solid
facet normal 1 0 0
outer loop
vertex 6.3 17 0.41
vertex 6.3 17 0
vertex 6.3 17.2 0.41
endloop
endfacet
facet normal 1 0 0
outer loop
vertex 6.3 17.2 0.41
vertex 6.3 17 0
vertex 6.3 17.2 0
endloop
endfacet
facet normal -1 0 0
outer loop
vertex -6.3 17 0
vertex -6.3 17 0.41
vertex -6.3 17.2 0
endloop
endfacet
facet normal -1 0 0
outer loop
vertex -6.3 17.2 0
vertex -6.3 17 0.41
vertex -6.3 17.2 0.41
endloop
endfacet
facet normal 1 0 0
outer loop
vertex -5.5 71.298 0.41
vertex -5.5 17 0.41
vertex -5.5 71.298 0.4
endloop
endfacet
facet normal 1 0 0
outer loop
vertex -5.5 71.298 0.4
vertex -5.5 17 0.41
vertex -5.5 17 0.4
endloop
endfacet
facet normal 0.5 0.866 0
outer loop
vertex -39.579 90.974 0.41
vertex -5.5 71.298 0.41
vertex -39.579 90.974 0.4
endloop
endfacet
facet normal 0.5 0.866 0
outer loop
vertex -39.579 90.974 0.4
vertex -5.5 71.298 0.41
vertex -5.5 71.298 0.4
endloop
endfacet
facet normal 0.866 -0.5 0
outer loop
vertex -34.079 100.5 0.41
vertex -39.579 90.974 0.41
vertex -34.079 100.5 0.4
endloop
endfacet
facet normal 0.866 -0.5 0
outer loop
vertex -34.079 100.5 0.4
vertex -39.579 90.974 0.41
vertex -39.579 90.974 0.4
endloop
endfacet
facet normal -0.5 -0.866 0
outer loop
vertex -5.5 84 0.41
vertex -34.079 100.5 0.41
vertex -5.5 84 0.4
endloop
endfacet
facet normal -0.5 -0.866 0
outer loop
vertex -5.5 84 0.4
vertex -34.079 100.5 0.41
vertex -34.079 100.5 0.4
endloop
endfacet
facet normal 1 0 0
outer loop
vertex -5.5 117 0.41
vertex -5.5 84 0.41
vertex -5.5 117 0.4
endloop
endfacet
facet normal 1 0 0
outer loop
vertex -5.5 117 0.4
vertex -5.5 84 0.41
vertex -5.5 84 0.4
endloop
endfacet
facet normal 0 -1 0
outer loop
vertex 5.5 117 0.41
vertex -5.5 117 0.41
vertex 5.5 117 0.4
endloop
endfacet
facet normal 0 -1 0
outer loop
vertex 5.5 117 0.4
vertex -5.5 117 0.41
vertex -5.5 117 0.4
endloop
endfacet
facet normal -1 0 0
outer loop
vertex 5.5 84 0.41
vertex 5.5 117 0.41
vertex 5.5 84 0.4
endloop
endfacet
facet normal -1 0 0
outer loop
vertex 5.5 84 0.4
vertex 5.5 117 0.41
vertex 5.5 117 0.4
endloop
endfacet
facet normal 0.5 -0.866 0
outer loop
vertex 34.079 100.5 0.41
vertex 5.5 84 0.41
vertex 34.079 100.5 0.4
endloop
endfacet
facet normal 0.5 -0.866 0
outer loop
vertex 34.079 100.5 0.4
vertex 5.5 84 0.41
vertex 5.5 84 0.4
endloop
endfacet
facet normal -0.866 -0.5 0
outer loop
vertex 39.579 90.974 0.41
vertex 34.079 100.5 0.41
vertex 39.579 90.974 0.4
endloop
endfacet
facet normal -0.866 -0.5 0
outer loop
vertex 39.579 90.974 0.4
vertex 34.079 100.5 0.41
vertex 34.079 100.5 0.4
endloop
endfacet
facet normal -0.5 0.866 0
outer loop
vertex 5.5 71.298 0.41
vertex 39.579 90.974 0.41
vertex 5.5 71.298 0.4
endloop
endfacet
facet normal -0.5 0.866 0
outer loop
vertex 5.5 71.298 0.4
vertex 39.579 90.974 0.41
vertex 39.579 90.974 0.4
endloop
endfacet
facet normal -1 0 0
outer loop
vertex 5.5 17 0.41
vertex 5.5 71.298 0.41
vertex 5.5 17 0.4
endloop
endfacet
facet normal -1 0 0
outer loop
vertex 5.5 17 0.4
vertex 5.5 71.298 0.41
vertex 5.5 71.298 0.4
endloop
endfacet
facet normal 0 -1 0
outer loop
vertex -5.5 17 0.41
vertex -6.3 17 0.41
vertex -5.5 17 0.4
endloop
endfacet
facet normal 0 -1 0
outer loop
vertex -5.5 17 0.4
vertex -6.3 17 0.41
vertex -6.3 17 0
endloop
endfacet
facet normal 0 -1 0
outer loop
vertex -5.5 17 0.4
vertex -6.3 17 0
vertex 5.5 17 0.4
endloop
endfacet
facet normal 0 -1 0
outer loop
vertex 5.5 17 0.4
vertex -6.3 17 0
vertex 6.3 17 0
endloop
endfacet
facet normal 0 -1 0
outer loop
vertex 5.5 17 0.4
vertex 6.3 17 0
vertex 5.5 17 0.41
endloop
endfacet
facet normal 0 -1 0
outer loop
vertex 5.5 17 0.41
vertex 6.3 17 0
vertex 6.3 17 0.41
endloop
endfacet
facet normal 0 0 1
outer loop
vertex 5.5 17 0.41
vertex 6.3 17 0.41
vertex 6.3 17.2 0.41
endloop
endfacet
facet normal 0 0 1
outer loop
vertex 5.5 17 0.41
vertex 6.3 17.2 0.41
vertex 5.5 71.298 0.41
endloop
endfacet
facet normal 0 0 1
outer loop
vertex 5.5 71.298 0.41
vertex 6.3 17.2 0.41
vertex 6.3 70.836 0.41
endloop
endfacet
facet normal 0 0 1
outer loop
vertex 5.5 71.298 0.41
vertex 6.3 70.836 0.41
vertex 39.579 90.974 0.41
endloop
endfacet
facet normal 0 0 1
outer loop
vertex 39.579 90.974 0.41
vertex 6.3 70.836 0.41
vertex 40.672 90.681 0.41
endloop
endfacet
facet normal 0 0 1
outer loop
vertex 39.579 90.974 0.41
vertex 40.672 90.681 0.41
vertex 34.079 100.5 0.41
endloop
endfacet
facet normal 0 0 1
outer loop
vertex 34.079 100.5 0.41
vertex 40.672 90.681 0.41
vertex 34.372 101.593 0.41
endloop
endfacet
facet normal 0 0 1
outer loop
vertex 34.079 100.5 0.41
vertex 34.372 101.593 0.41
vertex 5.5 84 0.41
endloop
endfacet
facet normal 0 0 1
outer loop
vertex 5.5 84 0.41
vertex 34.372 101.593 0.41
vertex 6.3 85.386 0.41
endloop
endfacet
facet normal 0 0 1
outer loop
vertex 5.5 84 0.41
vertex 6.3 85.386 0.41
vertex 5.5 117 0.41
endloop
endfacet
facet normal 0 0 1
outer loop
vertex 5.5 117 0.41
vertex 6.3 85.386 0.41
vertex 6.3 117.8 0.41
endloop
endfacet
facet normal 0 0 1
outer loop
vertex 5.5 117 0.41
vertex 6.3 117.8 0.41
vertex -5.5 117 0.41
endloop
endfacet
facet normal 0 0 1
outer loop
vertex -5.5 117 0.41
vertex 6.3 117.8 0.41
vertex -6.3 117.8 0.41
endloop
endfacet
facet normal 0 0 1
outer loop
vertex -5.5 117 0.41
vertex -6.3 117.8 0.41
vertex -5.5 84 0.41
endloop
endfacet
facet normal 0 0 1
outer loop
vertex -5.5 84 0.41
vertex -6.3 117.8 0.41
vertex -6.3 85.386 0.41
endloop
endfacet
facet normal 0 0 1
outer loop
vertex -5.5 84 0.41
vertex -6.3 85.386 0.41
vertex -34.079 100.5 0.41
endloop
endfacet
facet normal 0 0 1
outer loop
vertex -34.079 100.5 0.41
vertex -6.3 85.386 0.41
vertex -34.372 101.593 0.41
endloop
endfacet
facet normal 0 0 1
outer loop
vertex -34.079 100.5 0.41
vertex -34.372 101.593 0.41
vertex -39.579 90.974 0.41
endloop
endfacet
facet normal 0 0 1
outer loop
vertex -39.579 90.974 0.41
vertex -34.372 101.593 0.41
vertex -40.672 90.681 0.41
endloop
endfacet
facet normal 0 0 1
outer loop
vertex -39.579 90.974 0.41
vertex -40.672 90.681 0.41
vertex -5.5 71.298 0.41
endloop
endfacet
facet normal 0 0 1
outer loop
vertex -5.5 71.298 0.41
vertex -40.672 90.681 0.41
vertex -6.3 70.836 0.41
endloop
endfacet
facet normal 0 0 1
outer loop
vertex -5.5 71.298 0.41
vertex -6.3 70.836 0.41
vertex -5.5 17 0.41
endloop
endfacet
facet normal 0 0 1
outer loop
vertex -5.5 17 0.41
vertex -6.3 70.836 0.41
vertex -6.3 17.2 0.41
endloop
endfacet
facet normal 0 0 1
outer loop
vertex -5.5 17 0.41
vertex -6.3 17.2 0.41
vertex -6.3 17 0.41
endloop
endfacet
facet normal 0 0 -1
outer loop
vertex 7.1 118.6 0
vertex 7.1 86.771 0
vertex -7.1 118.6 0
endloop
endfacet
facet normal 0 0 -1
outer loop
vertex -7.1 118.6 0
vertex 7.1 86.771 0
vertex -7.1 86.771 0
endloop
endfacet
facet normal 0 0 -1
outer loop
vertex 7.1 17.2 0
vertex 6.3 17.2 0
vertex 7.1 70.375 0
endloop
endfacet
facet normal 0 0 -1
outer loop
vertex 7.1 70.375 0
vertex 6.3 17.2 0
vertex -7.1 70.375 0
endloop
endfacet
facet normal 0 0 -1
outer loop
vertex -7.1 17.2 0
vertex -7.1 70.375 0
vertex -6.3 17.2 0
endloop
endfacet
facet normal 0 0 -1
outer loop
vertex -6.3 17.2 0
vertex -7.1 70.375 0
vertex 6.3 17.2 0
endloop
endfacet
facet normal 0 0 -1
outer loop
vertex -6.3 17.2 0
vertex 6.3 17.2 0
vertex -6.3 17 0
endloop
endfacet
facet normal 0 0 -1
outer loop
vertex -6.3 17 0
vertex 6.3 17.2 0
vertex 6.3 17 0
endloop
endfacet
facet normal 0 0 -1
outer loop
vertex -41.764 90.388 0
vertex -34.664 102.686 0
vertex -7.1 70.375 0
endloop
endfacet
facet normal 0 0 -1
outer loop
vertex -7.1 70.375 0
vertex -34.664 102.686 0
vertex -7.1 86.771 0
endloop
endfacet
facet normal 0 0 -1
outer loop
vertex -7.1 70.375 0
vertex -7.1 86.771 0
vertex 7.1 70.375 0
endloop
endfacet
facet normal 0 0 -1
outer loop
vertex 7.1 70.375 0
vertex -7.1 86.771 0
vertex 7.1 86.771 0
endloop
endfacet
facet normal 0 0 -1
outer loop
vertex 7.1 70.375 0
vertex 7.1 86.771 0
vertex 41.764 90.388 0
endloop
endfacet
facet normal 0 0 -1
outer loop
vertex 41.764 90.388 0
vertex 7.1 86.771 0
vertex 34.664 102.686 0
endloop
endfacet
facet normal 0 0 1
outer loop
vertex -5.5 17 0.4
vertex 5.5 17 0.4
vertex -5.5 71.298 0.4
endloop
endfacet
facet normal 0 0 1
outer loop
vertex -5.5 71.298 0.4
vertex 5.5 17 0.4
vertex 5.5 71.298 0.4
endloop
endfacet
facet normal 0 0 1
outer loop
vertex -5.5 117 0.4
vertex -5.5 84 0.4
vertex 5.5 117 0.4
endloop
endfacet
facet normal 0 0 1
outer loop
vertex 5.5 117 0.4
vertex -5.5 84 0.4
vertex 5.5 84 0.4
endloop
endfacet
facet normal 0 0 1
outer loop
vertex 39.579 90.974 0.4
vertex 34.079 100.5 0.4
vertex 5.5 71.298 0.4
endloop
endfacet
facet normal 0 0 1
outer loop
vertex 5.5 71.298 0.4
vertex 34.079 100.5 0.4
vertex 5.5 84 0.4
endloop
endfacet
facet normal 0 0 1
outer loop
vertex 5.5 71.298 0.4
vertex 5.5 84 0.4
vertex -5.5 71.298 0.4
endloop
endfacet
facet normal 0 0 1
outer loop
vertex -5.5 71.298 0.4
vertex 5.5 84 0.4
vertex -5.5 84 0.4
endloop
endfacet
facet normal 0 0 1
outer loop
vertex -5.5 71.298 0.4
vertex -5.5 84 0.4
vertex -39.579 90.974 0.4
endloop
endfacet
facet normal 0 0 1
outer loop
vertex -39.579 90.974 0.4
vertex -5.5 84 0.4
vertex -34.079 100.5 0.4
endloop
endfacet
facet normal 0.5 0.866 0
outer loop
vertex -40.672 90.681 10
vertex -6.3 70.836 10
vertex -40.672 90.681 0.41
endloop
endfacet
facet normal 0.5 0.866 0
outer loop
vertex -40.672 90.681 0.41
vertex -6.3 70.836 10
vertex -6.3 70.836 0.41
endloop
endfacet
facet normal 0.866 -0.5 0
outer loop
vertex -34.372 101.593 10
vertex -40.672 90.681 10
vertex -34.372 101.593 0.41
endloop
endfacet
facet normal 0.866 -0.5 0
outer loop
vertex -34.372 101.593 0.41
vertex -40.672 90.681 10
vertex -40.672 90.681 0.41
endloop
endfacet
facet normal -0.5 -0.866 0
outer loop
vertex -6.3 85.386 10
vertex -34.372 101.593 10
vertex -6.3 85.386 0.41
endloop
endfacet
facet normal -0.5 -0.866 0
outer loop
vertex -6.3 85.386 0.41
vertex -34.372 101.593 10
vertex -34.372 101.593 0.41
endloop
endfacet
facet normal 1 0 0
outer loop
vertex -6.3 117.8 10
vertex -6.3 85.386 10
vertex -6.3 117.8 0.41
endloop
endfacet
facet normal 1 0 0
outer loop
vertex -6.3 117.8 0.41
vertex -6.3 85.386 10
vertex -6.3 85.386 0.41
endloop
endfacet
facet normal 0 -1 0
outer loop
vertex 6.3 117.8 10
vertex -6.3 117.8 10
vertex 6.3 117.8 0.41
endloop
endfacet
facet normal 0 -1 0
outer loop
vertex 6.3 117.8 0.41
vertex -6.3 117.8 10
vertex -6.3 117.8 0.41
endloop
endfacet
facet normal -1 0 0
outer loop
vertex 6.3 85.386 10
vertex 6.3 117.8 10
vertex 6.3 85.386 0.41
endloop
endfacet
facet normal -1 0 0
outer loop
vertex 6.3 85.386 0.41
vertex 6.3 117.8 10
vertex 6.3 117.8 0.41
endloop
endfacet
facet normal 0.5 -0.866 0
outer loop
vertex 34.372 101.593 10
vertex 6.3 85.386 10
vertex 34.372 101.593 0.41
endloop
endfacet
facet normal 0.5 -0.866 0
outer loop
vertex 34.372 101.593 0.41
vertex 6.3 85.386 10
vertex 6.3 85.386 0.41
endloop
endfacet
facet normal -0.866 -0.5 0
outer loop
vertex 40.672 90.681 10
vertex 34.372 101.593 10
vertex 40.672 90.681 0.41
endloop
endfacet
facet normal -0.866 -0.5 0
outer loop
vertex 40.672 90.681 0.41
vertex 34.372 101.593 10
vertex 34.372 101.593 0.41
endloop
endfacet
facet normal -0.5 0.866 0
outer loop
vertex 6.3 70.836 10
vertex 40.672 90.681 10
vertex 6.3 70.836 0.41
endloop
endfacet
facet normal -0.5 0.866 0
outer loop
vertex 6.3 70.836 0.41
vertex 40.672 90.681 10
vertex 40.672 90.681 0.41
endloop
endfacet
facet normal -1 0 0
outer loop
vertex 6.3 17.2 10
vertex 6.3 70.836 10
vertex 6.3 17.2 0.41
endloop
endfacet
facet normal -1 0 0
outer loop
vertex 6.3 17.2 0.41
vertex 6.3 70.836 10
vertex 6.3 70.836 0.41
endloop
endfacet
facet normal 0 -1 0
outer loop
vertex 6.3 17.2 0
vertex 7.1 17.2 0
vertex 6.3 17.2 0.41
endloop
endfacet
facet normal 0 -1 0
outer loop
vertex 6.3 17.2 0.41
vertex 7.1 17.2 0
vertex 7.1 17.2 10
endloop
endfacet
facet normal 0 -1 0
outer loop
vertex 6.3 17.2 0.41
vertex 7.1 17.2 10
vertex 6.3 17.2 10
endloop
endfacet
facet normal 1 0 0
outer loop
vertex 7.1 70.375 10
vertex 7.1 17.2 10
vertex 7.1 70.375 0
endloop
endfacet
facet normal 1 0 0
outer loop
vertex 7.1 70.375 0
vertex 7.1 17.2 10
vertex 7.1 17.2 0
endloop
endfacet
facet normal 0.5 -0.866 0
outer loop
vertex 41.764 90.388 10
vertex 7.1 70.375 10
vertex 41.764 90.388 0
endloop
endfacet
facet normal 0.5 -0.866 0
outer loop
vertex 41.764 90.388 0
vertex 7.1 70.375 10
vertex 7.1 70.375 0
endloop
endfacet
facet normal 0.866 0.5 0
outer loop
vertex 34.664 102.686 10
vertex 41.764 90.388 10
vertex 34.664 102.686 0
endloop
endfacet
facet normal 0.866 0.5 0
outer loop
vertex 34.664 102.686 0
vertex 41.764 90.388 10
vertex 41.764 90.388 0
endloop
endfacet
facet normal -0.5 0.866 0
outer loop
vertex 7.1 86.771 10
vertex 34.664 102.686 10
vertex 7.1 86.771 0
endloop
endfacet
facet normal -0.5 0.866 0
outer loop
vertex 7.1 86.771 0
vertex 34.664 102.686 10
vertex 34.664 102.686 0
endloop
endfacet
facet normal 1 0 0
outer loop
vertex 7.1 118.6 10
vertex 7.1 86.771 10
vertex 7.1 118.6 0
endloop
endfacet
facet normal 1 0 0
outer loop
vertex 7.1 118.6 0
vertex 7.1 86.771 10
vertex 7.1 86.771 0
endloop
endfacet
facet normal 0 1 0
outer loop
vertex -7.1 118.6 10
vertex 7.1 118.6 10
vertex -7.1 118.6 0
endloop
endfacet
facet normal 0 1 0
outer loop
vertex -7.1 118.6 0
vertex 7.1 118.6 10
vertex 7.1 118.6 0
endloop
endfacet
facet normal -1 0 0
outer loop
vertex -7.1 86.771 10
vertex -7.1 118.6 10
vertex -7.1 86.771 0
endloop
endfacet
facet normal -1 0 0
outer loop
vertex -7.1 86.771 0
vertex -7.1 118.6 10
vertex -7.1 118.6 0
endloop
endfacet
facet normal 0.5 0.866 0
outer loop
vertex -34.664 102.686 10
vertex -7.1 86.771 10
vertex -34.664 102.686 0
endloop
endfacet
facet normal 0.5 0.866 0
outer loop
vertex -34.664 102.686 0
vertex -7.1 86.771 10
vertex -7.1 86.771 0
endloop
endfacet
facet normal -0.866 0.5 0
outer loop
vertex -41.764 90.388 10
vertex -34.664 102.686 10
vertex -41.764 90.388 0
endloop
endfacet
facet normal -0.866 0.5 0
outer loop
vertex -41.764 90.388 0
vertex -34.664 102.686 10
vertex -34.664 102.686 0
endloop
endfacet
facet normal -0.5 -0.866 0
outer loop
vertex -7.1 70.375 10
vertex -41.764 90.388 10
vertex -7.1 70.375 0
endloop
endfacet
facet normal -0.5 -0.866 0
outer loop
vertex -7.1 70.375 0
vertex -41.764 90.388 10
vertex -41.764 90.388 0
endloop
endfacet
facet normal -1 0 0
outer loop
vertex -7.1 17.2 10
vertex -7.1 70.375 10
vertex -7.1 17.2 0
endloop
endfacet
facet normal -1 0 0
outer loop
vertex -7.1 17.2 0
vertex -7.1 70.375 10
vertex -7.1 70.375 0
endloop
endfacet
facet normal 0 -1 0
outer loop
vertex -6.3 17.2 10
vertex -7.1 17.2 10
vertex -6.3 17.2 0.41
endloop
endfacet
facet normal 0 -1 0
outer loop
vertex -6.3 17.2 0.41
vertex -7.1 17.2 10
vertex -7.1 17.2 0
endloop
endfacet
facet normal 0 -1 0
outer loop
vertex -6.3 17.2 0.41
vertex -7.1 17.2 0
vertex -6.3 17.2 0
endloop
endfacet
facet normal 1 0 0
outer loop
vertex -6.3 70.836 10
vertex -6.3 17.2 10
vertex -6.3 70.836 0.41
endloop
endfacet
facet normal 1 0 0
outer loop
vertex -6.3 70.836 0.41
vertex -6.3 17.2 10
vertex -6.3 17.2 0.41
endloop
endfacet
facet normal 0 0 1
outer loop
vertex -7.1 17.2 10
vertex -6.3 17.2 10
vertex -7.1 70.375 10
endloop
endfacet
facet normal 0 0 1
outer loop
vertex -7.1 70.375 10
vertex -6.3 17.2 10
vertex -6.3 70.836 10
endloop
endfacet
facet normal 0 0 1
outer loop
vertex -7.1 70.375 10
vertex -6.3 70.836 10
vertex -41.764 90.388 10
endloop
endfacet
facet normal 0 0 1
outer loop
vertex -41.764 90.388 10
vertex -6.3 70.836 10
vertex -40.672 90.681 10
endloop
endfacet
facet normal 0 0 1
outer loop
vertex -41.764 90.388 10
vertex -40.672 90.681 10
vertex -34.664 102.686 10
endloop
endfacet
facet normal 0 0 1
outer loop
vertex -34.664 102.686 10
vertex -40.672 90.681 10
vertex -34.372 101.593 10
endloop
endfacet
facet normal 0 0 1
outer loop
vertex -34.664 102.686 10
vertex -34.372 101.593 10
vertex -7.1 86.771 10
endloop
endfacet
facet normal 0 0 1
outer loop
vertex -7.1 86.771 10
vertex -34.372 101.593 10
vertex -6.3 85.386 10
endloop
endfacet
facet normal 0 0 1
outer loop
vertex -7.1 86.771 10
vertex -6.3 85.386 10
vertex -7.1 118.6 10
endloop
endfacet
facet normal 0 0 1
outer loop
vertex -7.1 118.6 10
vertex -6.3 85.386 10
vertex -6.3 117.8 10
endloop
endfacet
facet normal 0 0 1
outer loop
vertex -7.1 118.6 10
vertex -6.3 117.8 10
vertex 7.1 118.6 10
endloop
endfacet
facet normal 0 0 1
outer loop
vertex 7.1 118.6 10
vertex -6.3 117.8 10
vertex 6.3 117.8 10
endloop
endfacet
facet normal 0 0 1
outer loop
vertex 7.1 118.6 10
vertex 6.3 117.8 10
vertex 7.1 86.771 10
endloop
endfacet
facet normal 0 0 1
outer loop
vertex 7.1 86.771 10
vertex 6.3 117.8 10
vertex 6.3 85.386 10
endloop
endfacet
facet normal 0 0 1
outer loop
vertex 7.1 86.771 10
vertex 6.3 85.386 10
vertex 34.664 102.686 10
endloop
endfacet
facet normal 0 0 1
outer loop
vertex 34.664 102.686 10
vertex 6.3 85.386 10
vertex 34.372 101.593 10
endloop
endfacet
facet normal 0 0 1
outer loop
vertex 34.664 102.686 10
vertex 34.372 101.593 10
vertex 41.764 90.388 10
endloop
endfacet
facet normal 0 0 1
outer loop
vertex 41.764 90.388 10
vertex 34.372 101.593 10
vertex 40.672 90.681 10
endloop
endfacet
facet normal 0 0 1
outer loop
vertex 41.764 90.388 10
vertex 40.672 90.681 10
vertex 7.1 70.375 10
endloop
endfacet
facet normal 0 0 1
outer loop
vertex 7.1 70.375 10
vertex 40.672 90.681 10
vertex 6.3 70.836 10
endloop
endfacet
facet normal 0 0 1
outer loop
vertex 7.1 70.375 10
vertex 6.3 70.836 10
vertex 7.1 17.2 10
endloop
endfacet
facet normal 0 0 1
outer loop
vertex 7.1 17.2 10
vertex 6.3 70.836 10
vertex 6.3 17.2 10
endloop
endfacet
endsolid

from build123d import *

# Parameters (mm, degrees)
BOSS_EXTRUDE1_DEPTH = 0.41
BOSS_EXTRUDE2_DEPTH = 0.4
BOSS_EXTRUDE3_DEPTH = 10


with BuildPart() as part:
    # Sketch1 → Boss-Extrude1 (new body)
    with BuildSketch(Plane.XY):
        Polygon((-5.5, 17), (-5.5, 71.298294078), (-39.578838325, 90.973720558), (-34.078838325, 100.5), (-5.5, 84), (-5.5, 117), (5.5, 117), (5.5, 84), (34.078838325, 100.5), (39.578838325, 90.973720558), (5.5, 71.298294078), (5.5, 17), (6.3, 17), (6.3, 70.836413862), (40.671658648, 90.680900235), (34.371658648, 101.592820323), (6.3, 85.385640646), (6.3, 117.8), (-6.3, 117.8), (-6.3, 85.385640646), (-34.371658648, 101.592820323), (-40.671658648, 90.680900235), (-6.3, 70.836413862), (-6.3, 17), align=None)
    extrude(amount=BOSS_EXTRUDE1_DEPTH)

    # Sketch2 → Boss-Extrude2 (add)
    with BuildSketch(Plane.XY):
        Polygon((-5.5, 17), (-5.5, 71.298294078), (-39.578838325, 90.973720558), (-34.078838325, 100.5), (-5.5, 84), (-5.5, 117), (5.5, 117), (5.5, 84), (34.078838325, 100.5), (39.578838325, 90.973720558), (5.5, 71.298294078), (5.5, 17), align=None)
    extrude(amount=BOSS_EXTRUDE2_DEPTH)

    # Sketch3 → Boss-Extrude3 (add)
    with BuildSketch(Plane.XY):
        Polygon((-6.3, 17.2), (-6.3, 70.836413862), (-40.671658648, 90.680900235), (-34.371658648, 101.592820323), (-6.3, 85.385640646), (-6.3, 117.8), (6.3, 117.8), (6.3, 85.385640646), (34.371658648, 101.592820323), (40.671658648, 90.680900235), (6.3, 70.836413862), (6.3, 17.2), (7.1, 17.2), (7.1, 70.374533647), (41.764478971, 90.388079912), (34.664478971, 102.685640646), (7.1, 86.771281292), (7.1, 118.6), (-7.1, 118.6), (-7.1, 86.771281292), (-34.664478971, 102.685640646), (-41.764478971, 90.388079912), (-7.1, 70.374533647), (-7.1, 17.2), align=None)
    extrude(amount=BOSS_EXTRUDE3_DEPTH)


solid = part.part
